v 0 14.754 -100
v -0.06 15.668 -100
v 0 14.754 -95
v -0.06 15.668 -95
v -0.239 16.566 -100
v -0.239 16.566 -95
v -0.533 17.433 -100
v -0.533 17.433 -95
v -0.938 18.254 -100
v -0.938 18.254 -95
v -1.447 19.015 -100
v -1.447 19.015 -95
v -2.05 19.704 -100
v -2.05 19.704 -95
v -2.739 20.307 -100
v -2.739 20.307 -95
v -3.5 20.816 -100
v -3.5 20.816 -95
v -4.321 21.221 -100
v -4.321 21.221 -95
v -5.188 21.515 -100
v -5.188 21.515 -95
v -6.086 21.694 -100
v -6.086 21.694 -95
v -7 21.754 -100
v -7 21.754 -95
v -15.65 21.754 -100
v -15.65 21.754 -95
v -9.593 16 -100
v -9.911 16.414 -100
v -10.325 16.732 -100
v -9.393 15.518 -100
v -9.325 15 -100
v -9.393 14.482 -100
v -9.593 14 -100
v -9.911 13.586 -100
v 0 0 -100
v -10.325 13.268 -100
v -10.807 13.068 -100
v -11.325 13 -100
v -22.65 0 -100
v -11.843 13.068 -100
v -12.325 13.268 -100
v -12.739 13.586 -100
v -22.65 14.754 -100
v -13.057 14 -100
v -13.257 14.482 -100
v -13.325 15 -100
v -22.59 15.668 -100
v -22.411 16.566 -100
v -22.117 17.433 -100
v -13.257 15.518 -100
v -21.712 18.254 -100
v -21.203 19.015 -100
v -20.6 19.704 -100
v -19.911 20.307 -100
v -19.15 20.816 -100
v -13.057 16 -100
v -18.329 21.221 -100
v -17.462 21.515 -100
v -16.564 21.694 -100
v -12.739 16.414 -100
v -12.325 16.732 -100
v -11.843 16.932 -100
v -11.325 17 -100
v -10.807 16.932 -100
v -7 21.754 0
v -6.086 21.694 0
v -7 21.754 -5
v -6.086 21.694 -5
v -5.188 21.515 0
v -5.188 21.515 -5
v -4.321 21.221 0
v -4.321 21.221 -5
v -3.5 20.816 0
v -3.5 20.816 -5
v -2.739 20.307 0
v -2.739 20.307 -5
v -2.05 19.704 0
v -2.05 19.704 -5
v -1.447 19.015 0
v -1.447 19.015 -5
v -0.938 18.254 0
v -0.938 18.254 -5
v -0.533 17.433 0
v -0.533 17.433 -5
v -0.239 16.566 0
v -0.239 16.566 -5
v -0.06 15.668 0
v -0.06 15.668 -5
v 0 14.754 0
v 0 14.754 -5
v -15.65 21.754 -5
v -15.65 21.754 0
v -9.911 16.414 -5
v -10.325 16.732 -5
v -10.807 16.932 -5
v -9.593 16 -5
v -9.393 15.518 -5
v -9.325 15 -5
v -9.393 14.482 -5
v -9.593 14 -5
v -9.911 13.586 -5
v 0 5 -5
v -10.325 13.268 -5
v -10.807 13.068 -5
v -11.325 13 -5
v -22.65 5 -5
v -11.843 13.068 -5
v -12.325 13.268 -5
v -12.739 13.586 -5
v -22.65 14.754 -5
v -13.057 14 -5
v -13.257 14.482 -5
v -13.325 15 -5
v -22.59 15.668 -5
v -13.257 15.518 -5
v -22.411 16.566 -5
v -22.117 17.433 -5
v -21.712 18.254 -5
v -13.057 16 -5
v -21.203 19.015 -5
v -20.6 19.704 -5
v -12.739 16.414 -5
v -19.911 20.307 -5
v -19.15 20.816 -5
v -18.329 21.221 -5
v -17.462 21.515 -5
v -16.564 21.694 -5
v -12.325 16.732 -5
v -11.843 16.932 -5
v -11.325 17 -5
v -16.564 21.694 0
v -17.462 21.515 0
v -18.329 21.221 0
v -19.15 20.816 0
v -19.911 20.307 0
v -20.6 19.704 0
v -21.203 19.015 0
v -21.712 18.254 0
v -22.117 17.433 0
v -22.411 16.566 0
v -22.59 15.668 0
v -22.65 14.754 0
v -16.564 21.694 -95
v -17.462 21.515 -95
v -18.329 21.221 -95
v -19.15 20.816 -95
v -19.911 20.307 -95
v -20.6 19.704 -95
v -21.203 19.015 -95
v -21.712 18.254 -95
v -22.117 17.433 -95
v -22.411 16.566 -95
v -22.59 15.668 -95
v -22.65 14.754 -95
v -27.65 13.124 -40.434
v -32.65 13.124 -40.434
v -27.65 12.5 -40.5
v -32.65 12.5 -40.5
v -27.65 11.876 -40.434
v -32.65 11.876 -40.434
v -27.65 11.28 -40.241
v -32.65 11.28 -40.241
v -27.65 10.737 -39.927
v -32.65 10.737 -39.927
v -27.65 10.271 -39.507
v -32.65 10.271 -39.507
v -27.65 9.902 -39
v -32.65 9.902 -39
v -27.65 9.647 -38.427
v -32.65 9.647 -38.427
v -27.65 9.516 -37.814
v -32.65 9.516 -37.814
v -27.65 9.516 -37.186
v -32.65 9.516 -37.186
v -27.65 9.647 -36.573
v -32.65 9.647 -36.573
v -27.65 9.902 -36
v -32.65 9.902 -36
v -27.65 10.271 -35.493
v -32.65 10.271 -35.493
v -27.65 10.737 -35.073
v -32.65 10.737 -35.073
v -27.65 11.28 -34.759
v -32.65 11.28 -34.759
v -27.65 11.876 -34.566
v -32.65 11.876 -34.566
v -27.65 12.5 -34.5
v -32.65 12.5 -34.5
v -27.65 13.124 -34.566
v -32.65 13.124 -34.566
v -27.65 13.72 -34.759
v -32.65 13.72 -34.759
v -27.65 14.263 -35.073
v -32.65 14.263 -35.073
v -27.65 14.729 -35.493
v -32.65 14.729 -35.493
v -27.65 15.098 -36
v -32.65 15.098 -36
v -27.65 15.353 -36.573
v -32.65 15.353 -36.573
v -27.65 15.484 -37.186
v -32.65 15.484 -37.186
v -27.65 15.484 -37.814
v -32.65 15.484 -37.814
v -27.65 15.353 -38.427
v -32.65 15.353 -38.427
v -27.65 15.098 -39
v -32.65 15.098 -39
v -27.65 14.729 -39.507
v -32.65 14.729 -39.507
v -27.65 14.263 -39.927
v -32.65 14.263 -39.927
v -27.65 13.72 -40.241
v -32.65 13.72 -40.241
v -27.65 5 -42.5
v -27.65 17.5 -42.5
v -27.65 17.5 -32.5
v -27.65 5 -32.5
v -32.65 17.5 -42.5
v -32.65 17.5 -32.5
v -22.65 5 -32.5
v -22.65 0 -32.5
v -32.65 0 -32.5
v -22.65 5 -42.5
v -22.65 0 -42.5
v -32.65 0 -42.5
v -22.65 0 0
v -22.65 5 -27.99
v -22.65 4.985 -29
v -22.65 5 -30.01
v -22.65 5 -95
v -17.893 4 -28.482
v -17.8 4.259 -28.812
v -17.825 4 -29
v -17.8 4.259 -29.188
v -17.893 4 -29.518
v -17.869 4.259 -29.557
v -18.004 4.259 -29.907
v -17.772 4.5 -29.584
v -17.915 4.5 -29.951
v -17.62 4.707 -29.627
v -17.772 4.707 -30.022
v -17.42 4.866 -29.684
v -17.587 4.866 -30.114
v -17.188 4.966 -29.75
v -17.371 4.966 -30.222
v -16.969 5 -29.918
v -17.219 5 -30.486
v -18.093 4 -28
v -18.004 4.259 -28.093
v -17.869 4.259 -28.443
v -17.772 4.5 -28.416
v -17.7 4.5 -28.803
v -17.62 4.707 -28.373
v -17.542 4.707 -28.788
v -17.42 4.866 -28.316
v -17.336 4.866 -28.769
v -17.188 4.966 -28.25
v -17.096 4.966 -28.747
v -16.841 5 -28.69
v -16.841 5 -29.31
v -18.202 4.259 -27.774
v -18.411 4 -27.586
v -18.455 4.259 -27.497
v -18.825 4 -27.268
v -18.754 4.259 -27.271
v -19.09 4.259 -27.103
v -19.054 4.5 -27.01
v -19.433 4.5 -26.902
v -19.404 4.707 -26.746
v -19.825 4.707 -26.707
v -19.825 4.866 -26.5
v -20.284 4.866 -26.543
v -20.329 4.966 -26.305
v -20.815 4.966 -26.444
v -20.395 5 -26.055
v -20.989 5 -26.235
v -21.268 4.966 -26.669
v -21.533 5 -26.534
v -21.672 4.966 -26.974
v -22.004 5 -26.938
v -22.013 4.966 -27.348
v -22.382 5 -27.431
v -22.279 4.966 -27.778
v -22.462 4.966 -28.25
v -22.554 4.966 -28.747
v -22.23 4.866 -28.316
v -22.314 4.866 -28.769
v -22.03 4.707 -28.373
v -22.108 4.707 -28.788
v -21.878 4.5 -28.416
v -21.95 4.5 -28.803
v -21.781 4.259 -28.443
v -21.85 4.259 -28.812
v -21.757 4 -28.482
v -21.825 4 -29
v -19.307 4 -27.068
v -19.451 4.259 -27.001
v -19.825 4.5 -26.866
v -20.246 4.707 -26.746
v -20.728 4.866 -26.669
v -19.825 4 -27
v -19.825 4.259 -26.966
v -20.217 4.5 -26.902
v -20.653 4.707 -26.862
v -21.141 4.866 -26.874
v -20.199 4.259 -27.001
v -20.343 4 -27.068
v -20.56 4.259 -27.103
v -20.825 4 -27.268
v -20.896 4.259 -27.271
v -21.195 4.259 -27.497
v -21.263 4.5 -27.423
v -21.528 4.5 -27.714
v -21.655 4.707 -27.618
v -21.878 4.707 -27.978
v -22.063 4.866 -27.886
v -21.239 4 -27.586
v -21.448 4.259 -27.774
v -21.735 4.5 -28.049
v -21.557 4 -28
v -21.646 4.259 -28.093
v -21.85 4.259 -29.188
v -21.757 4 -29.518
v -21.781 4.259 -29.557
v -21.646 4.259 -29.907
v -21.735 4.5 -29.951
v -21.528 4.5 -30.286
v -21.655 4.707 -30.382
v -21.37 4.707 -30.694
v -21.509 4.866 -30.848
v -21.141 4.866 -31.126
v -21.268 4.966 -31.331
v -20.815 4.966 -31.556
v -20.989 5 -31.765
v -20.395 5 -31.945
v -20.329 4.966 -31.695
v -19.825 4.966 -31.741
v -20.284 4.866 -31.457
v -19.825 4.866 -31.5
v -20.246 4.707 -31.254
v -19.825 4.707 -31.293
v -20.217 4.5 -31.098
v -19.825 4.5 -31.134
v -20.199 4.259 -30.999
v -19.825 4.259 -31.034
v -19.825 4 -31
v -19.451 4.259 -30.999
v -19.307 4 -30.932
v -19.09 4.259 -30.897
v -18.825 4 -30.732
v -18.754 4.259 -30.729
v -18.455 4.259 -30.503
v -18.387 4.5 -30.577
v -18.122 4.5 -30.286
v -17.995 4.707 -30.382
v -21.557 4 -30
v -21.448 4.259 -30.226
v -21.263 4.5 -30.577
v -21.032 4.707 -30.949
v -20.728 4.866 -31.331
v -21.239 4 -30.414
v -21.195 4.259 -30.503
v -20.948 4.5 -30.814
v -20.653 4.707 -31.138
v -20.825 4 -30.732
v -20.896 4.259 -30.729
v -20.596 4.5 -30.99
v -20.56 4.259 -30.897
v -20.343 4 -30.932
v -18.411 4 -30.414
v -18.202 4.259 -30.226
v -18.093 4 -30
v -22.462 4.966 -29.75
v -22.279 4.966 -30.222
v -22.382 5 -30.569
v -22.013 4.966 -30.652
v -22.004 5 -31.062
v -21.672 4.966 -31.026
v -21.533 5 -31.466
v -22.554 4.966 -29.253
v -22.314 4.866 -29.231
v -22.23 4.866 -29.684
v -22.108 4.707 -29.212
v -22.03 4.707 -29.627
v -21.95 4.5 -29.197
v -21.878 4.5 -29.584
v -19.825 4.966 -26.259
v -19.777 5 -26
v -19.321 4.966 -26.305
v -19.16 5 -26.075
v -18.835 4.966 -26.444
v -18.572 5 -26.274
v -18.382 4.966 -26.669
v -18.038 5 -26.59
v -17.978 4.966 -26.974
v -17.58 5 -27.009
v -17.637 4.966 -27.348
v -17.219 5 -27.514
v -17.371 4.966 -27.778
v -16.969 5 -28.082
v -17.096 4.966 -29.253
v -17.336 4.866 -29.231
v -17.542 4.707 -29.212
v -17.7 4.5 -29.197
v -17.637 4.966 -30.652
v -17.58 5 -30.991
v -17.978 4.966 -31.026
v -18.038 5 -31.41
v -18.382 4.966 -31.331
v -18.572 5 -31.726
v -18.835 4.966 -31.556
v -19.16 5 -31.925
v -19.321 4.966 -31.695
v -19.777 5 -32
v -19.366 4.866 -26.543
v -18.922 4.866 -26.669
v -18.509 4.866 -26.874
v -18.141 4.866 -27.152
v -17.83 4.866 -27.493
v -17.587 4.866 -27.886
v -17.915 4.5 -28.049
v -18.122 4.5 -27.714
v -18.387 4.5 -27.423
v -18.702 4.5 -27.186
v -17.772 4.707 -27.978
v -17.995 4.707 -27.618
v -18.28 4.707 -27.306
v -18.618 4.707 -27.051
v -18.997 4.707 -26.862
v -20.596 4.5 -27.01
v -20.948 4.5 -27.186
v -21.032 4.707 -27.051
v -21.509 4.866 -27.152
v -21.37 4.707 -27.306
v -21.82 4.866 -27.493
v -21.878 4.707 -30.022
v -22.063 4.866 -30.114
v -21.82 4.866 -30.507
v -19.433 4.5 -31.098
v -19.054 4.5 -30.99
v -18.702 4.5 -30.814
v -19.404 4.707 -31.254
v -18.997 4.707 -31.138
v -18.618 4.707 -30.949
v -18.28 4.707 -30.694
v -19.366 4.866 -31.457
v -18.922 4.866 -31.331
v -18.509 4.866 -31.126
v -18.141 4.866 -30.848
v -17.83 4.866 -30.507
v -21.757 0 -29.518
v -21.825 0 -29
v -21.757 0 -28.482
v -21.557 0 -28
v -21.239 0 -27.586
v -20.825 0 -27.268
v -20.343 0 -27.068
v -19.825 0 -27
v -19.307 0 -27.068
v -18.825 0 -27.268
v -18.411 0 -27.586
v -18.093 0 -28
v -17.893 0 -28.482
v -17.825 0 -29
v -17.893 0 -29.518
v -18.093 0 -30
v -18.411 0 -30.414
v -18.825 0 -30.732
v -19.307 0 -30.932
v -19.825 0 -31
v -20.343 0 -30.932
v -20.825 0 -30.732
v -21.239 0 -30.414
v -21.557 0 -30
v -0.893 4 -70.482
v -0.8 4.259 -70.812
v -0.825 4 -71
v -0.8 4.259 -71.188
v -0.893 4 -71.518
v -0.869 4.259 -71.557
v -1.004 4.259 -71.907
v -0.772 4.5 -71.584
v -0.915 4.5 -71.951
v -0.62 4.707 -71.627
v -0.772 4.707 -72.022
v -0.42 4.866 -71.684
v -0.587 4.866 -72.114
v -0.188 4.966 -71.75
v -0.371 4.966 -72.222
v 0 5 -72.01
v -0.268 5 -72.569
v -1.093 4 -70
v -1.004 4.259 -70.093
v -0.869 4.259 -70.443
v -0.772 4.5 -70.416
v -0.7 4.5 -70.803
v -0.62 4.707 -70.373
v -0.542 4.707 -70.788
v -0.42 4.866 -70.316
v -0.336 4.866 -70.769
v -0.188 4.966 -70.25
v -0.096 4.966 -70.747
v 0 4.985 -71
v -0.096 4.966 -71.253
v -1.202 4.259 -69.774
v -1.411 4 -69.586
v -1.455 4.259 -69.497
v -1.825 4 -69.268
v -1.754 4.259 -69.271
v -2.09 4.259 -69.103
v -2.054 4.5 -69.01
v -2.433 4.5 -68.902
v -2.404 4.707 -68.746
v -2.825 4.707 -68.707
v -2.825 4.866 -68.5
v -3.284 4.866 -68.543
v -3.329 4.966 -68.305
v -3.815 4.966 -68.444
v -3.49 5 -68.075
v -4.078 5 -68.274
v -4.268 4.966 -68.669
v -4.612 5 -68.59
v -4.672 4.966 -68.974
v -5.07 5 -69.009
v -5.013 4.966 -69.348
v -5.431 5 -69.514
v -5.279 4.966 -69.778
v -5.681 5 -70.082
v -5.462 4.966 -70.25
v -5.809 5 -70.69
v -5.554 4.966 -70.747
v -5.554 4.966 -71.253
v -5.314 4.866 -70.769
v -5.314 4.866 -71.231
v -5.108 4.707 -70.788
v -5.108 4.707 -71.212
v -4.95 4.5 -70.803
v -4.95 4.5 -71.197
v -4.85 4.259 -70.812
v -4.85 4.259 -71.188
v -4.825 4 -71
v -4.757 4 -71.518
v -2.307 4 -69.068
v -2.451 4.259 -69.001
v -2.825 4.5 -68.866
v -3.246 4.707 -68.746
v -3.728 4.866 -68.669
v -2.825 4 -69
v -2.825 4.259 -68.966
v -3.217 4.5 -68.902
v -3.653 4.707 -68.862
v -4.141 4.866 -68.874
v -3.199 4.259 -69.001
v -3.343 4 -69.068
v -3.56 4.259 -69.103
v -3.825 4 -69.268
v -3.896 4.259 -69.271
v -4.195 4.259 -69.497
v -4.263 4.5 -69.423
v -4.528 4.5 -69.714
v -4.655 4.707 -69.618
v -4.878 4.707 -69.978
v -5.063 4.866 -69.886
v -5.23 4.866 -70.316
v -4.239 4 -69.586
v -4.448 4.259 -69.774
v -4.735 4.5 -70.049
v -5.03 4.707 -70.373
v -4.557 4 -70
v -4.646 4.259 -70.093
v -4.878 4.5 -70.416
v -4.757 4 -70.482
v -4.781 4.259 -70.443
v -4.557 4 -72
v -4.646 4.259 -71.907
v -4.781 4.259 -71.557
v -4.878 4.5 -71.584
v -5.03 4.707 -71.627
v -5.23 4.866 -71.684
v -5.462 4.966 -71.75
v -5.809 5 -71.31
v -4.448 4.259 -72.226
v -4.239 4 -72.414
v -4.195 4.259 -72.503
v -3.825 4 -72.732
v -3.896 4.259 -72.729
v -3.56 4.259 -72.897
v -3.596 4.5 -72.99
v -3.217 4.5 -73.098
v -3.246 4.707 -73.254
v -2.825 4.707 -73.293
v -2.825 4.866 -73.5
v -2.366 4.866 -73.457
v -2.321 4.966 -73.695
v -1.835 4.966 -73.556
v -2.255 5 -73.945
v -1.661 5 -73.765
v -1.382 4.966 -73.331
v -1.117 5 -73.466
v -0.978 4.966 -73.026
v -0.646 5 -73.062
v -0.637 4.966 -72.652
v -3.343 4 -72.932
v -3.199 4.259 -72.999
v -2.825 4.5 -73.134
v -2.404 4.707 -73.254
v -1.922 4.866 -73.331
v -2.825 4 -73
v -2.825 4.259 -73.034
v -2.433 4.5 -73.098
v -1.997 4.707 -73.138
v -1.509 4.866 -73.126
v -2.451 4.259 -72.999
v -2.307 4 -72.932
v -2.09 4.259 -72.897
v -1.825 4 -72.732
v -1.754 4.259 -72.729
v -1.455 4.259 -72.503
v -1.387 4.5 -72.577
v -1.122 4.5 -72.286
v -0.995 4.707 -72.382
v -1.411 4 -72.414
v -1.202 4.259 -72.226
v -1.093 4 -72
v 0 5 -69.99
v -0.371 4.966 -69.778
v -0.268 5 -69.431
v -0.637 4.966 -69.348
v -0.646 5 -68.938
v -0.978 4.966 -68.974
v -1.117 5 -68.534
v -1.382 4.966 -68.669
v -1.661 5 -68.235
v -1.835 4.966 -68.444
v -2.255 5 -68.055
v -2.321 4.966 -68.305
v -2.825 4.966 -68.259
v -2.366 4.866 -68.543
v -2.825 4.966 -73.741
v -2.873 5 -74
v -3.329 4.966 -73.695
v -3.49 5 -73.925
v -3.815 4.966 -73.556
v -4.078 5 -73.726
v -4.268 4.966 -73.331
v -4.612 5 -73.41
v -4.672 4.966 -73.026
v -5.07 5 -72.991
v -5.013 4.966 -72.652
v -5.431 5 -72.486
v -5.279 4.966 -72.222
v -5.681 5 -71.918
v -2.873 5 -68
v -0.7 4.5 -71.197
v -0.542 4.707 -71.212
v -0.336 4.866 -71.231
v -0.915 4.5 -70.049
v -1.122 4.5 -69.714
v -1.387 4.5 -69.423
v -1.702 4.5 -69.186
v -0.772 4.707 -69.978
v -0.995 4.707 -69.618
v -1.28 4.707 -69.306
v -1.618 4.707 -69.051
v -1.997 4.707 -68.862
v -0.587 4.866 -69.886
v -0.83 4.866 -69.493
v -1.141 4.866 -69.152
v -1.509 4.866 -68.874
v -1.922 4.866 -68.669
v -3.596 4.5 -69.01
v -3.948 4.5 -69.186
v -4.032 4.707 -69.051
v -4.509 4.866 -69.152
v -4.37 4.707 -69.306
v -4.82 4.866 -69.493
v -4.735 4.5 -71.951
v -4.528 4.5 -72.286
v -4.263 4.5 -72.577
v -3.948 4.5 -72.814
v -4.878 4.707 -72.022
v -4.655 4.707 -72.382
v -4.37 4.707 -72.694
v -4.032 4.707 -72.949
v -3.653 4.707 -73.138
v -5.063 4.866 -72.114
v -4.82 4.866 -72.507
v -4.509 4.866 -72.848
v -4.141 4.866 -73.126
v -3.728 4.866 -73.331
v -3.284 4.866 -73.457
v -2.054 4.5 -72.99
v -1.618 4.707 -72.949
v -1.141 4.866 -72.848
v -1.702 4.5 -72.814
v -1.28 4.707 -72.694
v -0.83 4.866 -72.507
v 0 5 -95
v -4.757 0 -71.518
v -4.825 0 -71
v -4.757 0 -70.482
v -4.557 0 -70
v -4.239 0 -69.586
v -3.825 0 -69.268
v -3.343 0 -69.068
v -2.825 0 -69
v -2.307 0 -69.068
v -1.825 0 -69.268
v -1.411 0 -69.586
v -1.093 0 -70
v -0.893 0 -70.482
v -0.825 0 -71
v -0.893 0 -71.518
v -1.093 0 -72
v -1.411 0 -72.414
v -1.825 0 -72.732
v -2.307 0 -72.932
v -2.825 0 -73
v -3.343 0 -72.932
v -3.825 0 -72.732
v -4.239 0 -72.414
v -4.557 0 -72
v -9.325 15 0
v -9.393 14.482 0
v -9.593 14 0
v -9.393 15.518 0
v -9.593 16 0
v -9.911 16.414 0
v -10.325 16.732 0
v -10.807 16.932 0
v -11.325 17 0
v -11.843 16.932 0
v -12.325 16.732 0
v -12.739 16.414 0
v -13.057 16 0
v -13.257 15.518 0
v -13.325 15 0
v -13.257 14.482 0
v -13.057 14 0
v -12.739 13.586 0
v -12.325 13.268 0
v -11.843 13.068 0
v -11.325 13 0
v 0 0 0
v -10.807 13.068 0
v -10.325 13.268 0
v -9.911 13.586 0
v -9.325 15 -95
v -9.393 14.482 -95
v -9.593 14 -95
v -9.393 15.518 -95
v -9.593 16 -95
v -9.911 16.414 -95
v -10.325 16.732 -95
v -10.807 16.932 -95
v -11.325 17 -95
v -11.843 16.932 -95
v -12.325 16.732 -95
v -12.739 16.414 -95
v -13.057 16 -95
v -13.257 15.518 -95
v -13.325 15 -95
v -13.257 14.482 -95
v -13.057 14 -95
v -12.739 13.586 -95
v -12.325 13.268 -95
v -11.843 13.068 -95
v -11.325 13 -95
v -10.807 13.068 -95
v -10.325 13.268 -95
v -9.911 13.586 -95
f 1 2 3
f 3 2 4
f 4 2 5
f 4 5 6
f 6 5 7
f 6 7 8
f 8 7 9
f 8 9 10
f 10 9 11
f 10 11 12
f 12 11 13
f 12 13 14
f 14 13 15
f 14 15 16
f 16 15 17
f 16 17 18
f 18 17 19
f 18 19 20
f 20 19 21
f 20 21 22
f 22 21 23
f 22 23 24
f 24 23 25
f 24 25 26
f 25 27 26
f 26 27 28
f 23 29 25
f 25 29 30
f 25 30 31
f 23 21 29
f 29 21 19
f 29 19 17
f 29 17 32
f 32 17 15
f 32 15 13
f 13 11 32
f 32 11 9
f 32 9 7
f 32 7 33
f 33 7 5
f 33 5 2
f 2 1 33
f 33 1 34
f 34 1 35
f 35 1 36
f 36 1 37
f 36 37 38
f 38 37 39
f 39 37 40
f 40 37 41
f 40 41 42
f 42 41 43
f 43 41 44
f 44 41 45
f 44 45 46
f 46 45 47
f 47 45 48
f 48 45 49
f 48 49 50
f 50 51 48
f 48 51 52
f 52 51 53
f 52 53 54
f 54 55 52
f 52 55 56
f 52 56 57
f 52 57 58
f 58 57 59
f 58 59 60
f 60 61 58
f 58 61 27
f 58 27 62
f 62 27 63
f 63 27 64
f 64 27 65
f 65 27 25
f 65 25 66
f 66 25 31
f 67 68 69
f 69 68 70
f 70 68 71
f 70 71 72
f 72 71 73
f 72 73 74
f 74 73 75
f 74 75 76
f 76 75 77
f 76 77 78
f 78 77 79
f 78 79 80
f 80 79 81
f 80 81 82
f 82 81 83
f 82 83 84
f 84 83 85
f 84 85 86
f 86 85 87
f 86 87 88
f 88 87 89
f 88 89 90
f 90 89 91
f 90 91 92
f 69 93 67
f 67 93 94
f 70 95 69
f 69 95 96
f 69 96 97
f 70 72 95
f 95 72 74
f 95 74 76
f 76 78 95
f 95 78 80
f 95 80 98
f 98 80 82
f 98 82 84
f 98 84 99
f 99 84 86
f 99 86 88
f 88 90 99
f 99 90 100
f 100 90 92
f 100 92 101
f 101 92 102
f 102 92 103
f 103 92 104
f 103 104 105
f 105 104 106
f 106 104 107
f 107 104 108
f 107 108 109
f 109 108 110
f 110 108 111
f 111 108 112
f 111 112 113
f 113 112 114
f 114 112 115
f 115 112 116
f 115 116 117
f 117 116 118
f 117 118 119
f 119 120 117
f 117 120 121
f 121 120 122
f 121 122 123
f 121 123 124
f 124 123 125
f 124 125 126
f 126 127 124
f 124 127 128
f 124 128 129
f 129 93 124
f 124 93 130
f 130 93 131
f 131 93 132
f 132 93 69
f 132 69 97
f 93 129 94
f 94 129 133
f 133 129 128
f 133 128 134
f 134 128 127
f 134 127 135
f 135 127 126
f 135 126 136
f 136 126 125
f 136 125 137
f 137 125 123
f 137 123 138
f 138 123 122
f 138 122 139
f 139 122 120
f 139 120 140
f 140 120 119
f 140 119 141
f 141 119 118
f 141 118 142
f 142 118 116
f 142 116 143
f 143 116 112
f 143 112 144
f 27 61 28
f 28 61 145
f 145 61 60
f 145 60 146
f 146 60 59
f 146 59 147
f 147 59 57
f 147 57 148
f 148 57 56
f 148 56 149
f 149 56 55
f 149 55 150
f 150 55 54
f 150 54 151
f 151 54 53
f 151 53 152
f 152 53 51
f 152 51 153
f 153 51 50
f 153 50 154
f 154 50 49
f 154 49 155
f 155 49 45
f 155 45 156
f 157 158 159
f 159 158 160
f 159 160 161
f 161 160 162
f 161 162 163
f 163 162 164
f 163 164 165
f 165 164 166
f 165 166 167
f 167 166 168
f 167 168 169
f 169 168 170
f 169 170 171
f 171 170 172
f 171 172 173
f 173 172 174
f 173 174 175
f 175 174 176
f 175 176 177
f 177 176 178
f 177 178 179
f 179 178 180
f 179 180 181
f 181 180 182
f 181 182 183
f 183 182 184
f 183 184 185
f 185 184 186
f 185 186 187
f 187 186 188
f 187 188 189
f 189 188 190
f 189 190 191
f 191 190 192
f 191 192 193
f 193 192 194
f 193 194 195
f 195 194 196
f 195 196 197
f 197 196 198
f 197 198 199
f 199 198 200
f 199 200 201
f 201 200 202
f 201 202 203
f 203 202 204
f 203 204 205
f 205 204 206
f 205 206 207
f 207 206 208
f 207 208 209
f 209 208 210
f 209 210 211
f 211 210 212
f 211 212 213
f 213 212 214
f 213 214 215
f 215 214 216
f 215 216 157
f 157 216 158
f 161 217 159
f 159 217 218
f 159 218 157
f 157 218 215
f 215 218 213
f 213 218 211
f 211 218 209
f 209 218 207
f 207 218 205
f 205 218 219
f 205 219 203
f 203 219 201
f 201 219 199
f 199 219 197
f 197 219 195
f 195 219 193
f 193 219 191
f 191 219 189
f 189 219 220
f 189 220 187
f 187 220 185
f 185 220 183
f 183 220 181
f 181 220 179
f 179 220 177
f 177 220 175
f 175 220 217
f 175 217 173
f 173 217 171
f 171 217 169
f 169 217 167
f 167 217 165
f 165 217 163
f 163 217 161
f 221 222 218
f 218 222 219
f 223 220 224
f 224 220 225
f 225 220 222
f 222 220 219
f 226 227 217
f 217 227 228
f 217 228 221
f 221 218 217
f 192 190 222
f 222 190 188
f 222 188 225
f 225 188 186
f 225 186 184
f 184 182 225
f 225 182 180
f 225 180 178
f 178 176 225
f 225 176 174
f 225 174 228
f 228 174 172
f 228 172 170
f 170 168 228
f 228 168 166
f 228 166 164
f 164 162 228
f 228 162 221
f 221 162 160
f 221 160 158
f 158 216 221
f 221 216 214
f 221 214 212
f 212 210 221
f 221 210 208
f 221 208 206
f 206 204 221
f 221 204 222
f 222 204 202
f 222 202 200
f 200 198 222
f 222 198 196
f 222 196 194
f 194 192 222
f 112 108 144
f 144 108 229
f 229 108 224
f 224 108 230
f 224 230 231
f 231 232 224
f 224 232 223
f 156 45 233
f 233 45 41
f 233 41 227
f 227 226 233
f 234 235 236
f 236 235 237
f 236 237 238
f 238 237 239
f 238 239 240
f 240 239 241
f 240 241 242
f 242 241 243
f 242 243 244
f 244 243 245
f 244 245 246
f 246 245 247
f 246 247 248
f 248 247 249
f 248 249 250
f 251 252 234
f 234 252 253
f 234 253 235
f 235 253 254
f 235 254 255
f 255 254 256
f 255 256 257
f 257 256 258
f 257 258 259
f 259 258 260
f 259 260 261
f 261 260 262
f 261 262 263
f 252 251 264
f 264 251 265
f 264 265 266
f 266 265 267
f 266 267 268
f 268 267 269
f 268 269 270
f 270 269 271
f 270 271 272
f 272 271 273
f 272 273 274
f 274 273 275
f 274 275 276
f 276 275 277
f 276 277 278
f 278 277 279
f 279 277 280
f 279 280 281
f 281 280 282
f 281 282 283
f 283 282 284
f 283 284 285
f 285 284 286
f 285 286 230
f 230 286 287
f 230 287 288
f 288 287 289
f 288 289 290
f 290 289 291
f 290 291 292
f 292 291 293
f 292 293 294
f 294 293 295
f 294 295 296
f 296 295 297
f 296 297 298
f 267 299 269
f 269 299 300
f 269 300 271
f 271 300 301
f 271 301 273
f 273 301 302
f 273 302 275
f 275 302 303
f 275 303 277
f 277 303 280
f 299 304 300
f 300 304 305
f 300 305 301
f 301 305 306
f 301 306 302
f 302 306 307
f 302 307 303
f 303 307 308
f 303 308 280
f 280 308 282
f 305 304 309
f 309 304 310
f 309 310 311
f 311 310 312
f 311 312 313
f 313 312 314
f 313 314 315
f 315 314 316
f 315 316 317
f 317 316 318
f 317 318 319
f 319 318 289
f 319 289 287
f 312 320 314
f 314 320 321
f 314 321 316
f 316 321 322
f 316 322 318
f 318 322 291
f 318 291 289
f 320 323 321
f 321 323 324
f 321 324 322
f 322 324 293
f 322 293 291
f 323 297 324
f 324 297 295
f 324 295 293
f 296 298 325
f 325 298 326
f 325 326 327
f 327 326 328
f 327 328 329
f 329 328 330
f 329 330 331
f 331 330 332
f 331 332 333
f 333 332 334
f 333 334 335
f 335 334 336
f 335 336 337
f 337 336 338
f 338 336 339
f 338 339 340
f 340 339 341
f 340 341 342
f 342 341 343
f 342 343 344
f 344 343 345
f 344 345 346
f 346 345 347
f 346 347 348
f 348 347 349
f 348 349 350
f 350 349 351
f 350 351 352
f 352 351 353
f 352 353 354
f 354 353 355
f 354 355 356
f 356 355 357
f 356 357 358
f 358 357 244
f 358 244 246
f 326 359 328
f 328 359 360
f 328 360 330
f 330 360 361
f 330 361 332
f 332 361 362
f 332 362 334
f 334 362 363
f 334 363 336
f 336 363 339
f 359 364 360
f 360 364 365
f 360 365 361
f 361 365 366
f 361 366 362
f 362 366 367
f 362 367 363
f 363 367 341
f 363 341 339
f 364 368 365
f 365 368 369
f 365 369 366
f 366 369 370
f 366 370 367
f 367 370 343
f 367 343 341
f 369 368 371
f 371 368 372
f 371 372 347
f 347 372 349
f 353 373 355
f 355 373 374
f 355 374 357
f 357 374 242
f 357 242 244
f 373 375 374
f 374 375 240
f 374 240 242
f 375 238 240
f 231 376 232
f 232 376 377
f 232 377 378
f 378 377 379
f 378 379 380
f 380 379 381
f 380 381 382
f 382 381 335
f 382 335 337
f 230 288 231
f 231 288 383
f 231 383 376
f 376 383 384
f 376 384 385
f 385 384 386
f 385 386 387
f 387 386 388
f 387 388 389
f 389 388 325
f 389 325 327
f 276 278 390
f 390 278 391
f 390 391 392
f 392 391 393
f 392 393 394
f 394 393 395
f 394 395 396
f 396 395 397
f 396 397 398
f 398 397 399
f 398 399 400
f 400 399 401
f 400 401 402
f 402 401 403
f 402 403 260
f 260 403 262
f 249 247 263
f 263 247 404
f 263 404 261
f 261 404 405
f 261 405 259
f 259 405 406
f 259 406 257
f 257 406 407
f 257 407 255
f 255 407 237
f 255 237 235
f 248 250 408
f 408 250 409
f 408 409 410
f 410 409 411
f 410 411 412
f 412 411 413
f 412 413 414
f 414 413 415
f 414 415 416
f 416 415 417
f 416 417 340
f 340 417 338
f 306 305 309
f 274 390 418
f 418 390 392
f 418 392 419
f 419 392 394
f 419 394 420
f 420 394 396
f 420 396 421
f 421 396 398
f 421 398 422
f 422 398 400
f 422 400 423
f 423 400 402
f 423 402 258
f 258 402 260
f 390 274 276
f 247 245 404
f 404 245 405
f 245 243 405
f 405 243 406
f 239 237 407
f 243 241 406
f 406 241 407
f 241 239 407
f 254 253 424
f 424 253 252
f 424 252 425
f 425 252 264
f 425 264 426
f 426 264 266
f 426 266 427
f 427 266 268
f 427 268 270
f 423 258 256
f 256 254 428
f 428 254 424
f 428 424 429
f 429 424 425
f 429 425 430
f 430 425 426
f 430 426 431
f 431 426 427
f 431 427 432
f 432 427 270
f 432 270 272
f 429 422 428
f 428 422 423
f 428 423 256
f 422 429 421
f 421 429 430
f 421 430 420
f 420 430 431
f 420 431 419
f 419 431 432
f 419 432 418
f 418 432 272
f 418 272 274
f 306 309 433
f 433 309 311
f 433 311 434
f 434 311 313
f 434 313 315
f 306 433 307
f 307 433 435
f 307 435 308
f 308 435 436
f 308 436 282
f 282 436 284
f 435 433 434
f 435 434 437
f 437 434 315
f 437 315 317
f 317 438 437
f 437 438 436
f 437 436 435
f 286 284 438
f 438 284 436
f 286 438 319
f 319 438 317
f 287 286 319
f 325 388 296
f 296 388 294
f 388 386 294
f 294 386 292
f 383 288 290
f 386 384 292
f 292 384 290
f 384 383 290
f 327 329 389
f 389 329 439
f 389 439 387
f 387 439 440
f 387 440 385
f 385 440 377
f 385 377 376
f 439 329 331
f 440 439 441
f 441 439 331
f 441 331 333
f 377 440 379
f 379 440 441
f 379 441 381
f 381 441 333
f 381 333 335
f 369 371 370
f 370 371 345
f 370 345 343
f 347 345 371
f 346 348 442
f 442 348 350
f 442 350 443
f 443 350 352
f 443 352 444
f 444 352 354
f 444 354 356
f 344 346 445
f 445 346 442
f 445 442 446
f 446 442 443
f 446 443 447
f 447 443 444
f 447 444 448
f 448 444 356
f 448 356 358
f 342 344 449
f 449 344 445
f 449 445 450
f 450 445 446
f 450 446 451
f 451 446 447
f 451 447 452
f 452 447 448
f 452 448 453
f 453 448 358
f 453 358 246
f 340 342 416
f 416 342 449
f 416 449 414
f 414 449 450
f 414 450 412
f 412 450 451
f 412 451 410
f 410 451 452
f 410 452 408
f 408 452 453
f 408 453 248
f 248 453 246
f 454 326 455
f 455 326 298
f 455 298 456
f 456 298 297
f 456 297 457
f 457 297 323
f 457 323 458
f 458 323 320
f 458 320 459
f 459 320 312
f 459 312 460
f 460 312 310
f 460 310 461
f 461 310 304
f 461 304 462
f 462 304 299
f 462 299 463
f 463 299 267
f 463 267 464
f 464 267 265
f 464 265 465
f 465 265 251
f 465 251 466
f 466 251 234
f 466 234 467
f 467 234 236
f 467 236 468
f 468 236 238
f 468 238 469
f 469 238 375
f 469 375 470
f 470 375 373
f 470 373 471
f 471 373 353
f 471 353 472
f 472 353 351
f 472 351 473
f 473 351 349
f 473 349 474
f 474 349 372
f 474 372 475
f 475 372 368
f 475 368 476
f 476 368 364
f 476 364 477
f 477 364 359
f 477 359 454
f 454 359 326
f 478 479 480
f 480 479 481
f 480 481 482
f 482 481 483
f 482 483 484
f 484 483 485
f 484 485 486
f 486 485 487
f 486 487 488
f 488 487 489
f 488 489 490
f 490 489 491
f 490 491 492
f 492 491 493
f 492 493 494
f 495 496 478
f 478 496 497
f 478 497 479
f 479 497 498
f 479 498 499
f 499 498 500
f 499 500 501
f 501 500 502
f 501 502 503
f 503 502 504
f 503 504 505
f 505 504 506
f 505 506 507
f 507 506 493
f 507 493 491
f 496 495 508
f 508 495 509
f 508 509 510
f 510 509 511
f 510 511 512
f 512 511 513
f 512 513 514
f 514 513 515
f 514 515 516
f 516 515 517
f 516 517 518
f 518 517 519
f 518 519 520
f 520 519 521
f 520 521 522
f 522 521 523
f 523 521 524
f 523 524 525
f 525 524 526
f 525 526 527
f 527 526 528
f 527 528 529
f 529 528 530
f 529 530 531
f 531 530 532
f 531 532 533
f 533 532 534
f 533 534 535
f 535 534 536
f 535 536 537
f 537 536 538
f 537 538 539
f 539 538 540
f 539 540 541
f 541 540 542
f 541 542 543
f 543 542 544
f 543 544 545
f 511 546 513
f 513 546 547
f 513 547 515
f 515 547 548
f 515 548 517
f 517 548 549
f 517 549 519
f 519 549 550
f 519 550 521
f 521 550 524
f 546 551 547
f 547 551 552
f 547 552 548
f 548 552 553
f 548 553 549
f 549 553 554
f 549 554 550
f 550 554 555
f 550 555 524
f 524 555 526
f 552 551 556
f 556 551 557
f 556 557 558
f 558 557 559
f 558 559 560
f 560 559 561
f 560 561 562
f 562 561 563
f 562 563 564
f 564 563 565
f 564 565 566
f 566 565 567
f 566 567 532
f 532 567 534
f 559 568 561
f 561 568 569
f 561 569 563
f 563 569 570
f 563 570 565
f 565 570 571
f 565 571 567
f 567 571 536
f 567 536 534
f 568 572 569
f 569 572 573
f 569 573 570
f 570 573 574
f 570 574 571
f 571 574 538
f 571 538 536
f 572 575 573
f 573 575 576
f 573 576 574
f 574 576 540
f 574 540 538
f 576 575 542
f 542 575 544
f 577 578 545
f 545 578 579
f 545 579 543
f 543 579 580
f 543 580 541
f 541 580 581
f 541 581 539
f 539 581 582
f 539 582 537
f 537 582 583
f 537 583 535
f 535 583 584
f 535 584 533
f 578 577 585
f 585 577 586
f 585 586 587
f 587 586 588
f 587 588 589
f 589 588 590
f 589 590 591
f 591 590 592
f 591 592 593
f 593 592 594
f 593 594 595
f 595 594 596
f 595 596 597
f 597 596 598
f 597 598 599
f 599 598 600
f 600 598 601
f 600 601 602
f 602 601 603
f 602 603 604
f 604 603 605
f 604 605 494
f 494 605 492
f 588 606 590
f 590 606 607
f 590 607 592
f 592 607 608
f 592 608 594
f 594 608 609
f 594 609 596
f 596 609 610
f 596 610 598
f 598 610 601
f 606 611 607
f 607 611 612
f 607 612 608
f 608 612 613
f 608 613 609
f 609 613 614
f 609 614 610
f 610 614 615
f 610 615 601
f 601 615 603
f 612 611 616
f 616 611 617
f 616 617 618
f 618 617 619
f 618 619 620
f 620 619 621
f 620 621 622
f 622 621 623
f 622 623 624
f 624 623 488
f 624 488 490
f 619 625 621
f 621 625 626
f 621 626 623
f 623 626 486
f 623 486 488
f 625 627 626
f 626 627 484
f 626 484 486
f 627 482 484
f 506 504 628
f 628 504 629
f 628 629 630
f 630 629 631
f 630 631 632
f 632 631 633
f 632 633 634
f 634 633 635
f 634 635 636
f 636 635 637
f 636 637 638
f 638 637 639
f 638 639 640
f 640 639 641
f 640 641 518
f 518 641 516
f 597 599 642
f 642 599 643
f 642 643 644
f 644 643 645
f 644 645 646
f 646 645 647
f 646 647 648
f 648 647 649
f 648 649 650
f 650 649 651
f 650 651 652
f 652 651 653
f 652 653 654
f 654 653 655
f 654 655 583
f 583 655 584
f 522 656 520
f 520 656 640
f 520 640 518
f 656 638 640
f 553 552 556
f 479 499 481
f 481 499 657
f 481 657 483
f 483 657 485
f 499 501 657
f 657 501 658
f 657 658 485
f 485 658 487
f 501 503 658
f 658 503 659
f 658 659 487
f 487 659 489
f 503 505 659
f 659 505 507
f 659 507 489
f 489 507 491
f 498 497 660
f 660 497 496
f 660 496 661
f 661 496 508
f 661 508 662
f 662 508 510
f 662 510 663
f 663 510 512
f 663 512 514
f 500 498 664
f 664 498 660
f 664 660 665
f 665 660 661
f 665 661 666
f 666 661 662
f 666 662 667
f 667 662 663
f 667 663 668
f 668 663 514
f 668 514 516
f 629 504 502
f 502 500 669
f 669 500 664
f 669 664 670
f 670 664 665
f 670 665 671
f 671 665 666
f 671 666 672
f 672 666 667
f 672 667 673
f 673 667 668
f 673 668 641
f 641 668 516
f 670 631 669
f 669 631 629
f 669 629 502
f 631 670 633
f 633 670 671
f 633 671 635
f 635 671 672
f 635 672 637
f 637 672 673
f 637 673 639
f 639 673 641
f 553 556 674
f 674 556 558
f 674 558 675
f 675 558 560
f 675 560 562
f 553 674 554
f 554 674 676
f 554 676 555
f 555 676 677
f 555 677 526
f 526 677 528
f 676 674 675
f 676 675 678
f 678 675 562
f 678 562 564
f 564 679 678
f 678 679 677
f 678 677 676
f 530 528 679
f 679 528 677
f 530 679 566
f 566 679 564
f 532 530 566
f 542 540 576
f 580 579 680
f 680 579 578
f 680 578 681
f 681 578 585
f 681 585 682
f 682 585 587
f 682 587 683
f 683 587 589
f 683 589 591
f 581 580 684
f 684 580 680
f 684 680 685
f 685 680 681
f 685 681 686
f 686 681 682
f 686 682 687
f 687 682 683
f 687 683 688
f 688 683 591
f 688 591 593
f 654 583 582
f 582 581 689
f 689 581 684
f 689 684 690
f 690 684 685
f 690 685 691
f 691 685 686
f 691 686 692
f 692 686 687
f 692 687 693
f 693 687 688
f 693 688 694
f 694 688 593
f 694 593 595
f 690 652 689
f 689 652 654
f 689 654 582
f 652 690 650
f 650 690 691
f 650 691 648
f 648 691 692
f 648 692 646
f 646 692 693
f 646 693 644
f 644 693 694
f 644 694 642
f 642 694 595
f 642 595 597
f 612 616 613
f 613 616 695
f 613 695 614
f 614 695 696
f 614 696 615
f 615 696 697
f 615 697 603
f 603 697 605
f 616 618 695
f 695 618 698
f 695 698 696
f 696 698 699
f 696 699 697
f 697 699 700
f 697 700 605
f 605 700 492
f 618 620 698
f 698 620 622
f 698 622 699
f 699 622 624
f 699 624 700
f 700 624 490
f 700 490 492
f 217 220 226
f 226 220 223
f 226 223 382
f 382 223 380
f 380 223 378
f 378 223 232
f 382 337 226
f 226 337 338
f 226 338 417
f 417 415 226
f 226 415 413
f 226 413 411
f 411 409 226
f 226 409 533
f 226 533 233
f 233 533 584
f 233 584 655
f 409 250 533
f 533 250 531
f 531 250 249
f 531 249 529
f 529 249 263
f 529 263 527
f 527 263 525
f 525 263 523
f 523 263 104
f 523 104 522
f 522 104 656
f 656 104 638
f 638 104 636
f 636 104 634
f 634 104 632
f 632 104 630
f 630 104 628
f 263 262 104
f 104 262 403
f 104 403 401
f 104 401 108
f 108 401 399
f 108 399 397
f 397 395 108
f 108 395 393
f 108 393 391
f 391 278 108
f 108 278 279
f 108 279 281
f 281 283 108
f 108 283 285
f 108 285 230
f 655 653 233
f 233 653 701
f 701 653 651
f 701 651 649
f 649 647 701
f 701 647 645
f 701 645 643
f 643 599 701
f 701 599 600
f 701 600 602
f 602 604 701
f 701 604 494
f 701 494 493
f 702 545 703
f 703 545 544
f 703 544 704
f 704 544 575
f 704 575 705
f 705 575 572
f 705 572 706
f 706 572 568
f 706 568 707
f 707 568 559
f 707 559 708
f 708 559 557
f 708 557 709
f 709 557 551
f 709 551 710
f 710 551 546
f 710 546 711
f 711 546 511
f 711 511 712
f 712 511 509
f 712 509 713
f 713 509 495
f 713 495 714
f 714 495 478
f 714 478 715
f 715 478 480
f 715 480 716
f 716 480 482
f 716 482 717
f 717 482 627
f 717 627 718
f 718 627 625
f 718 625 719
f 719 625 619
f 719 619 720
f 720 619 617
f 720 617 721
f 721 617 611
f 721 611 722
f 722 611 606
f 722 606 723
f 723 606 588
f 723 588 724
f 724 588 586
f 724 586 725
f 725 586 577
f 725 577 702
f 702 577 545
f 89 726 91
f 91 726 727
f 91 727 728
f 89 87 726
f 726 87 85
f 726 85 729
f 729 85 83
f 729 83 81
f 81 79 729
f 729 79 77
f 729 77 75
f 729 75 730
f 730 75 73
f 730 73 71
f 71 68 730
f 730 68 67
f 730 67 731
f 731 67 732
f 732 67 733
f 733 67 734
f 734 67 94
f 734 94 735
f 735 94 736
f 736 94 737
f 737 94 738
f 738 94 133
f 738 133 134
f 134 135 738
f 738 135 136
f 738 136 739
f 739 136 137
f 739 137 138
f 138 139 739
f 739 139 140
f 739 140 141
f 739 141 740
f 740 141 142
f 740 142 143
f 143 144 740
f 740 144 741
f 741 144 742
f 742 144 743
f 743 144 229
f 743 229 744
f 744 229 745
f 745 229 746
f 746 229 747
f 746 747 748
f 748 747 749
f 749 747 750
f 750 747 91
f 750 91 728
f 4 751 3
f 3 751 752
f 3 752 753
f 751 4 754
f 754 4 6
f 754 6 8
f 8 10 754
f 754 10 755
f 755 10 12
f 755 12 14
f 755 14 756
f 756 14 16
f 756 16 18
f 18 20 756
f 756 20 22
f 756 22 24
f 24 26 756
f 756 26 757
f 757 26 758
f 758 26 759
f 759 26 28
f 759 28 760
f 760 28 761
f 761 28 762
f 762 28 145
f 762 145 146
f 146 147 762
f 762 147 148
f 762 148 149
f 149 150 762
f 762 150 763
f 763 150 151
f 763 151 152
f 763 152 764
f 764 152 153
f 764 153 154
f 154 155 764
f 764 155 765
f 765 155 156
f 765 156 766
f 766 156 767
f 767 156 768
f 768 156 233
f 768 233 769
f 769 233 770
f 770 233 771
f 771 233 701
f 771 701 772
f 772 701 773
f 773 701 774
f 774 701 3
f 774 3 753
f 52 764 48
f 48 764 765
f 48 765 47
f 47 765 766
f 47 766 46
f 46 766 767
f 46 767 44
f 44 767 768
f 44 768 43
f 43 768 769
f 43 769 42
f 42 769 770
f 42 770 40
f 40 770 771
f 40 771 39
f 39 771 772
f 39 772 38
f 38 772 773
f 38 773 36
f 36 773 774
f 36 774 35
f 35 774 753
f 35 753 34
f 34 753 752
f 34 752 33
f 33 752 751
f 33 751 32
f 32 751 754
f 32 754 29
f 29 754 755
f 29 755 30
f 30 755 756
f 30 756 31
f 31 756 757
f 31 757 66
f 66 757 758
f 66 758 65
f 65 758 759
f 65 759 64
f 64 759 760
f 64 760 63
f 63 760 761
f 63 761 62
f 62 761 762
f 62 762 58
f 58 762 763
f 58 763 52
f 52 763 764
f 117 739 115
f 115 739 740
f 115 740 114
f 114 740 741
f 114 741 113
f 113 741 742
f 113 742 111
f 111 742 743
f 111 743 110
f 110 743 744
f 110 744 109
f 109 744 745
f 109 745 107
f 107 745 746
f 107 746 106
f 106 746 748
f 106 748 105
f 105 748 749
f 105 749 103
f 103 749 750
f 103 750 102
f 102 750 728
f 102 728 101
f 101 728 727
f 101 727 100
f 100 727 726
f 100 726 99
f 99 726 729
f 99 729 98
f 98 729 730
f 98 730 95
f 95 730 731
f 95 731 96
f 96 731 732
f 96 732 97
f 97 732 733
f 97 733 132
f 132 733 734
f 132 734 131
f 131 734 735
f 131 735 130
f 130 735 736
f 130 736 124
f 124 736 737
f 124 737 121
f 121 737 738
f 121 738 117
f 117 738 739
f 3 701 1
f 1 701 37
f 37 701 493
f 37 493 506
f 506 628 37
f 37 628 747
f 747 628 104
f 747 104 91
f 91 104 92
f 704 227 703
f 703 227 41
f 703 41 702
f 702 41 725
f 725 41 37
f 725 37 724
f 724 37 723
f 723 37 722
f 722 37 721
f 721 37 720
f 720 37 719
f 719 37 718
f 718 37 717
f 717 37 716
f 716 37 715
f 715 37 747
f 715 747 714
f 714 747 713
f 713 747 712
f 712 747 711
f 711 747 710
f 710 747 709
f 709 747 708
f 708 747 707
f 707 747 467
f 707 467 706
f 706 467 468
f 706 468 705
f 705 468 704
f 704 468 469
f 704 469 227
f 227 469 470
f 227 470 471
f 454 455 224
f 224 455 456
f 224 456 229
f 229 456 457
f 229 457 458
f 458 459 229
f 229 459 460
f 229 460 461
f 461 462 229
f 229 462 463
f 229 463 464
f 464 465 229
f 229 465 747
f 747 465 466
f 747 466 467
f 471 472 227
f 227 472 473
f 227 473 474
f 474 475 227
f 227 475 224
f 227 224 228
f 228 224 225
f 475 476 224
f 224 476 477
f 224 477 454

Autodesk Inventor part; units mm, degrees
ref_plane "YZ Plane" through (0, 0, 0) normal (1, 0, 0) x (0, 1, 0)
ref_plane "XZ Plane" through (0, 0, 0) normal (0, 1, 0) x (-1, 0, 0)
ref_plane "XY Plane" through (0, 0, 0) normal (0, 0, 1) x (1, 0, 0)
sketch "Sketch1" plane through (0, 0, 0) normal (0, 1, 0) x (-1, 0, 0)
  line L0 (0, 0) -> (22.65, 0)
  line L1 (22.65, 0) -> (22.65, -100)
  line L2 (22.65, -100) -> (0, -100)
  line L3 (0, -100) -> (0, 0)
  dimension "d0" = 22.65
  dimension "d1" = 100
extrude "Extrusion1" add sketch "Sketch1" along normal blind 5
sketch "Sketch2" plane through (0, 5, 0) normal (0, 1, 0) x (1, 0, 0)
  line L0 (-22.65, 0) -> (0, 0) projected
  line L1 (0, 0) -> (0, 100) projected
  line L2 (-22.65, 0) -> (0, 0)
  line L3 (0, 0) -> (0, 5)
  line L4 (0, 5) -> (-22.65, 5)
  line L5 (-22.65, 5) -> (-22.65, 0)
  line L6 (-22.65, 100) -> (-22.65, 0) projected
  line L7 (-22.65, 100) -> (0, 100)
  line L8 (0, 100) -> (0, 95)
  line L9 (0, 95) -> (-22.65, 95)
  line L10 (-22.65, 95) -> (-22.65, 100)
  dimension "d4" = 5
  dimension "d5" = 5
extrude "Extrusion2" add sketch "Sketch2" along normal blind 40 contours L5 L4 L1 L0 | L6 L7 L1 L9
sketch "Sketch3" plane through (-22.65, 0, 0) normal (0, 0, 1) x (1, 0, 0)
  point P0 (22.65, 0)
sketch "Sketch4" plane through (-22.65, 0, 0) normal (0, 0, 1) x (1, 0, 0)
  line L0 (22.65, 0) -> (0, 0) projected
  line L1 (22.65, 0) -> (0, 0)
  line L2 (0, 0) -> (11.325, 0)
  line L3 (11.325, 0) -> (11.325, 45)
  line L4 (22.65, 45) -> (0, 45) projected
  line L5 (0, 5) -> (22.65, 5) projected
  line L6 (22.65, 5) -> (0, 5)
  line L7 (11.325, 5) -> (11.325, 15) construction
  dimension "d8" = 10
hole "Hole1" at (-11.325, 15, 0) direction (0, 0, -1) diameter 4 depth 115 tip angle 118
sketch "Sketch5" plane through (-22.65, 0, 0) normal (0, 0, 1) x (1, 0, 0)
  line L0 (0, 5) -> (0, 45) projected
  line L1 (0, 45) -> (23, 45)
  line L2 (23, 45) -> (23, 21.7538)
  line L3 (23, 21.7538) -> (0, 21.7538)
  line L4 (0, 21.7538) -> (0, 45)
  point P0 (22.65, 0)
  dimension "d16" = 23
extrude "Extrusion3" cut sketch "Sketch5" against normal blind 102.75
sketch "Sketch6" plane through (0, 5, 0) normal (0, 1, 0) x (1, 0, 0)
  line L0 (0, 95) -> (-22.65, 95) construction
  line L1 (-22.65, 5) -> (0, 5) construction
  line L2 (0, 95) -> (0, 5) construction
  line L3 (0, 5) -> (-1.175, 5) construction
  line L4 (-1.175, 5) -> (-1.175, 95) construction
  line L5 (-1.175, 50) -> (-22.65, 50) construction
  line L6 (-22.65, 95) -> (-22.65, 5) construction
  line L7 (0, 5) -> (0, 95) construction
  line L8 (0, 5) -> (-22.65, 5) construction
  line L9 (-13.325, 5) -> (-9.325, 5) construction
  line L10 (-11.325, 5) -> (-11.325, 95) construction
  line L11 (-11.325, 50) -> (-2.825, 50) construction
  line L12 (-2.825, 50) -> (-2.825, 71) construction
  line L13 (-11.325, 50) -> (-19.825, 50) construction
  line L14 (-11.325, 50) -> (-2.825, 50) construction
  line L15 (-19.825, 50) -> (-19.825, 29) construction
  point P0 (0, 0)
  dimension "d19" = 1.175
  dimension "d20" = 8.5
  dimension "d21" = 21
  dimension "d22" = 90
  dimension "d23" = 8.5
  dimension "d24" = 180
  dimension "d25" = 21
hole "Hole2" at (-2.825, 5, -71) at (-19.825, 5, -29) direction (0, -1, 0) diameter 4 depth 115 tip angle 118
fillet "Fillet1" radius 1 2 edges at (-2.825, 5, -73) (-19.825, 5, -31)
sketch "Sketch7" plane through (0, 5, 0) normal (0, 1, 0) x (1, 0, 0)
  circle A0 centre (-2.825, 71) radius 2 construction
  line L0 (-2.825, 71) -> (-22.65, 71) construction
  line L1 (-22.65, 0) -> (-22.65, 100) construction
  circle A1 centre (-19.825, 29) radius 2 construction
  line L2 (-19.825, 29) -> (-19.825, 32.5) construction
  line L3 (-19.825, 32.5) -> (-35.65, 32.5) construction
  line L4 (-22.65, 32.5) -> (-32.65, 32.5) construction
  line L5 (-32.65, 32.5) -> (-32.65, 42.5) construction
  line L6 (-32.65, 42.5) -> (-22.65, 42.5) construction
  line L7 (-22.65, 42.5) -> (-22.65, 32.5) construction
  line L8 (-22.65, 42.5) -> (-32.65, 42.5)
  line L9 (-32.65, 42.5) -> (-32.65, 32.5)
  line L10 (-32.65, 32.5) -> (-22.65, 32.5)
  line L11 (-22.65, 32.5) -> (-22.65, 42.5)
  point P0 (0, 0)
  dimension "d34" = 3.5
  dimension "d35" = 15.825
  dimension "d36" = 10
  dimension "d37" = 10
extrude "Extrusion4" add sketch "Sketch7" against normal blind 5
sketch "Sketch8" plane through (0, 5, 0) normal (0, 1, 0) x (1, 0, 0)
  line L0 (-32.65, 42.5) -> (-22.65, 42.5) projected
  line L1 (-22.65, 32.5) -> (-32.65, 32.5) projected
  line L2 (-32.65, 42.5) -> (-27.65, 42.5)
  line L3 (-27.65, 42.5) -> (-27.65, 32.5)
  line L4 (-27.65, 32.5) -> (-32.65, 32.5)
  line L5 (-32.65, 32.5) -> (-32.65, 42.5)
  point P0 (0, 0)
  dimension "d40" = 5
extrude "Extrusion5" add sketch "Sketch8" along normal blind 12.5
sketch "Sketch9" plane through (-32.65, 0, -42.5) normal (-1, 0, 0) x (0, 0, 1)
  line L0 (0, 17.5) -> (0, 0) construction
  line L1 (0, 17.5) -> (5, 17.5) construction
  line L2 (10, 17.5) -> (0, 17.5) construction
  line L3 (10, 0) -> (0, 0) construction
  line L4 (5, 0) -> (5, 17.5) construction
  point P0 (42.5, 0)
  point P1 (5, 12.5)
hole "Hole3" at (-32.65, 12.5, -37.5) direction (1, 0, 0) diameter 6 depth 115 tip angle 118
fillet "Fillet2" radius 7 4 edges at (-22.65, 21.7538, -97.5) (-22.65, 21.7538, -2.5) (0, 21.7538, -2.5) (0, 21.7538, -97.5)
properties part number "mtv_axelHolder(pushingAxel)1-13"
